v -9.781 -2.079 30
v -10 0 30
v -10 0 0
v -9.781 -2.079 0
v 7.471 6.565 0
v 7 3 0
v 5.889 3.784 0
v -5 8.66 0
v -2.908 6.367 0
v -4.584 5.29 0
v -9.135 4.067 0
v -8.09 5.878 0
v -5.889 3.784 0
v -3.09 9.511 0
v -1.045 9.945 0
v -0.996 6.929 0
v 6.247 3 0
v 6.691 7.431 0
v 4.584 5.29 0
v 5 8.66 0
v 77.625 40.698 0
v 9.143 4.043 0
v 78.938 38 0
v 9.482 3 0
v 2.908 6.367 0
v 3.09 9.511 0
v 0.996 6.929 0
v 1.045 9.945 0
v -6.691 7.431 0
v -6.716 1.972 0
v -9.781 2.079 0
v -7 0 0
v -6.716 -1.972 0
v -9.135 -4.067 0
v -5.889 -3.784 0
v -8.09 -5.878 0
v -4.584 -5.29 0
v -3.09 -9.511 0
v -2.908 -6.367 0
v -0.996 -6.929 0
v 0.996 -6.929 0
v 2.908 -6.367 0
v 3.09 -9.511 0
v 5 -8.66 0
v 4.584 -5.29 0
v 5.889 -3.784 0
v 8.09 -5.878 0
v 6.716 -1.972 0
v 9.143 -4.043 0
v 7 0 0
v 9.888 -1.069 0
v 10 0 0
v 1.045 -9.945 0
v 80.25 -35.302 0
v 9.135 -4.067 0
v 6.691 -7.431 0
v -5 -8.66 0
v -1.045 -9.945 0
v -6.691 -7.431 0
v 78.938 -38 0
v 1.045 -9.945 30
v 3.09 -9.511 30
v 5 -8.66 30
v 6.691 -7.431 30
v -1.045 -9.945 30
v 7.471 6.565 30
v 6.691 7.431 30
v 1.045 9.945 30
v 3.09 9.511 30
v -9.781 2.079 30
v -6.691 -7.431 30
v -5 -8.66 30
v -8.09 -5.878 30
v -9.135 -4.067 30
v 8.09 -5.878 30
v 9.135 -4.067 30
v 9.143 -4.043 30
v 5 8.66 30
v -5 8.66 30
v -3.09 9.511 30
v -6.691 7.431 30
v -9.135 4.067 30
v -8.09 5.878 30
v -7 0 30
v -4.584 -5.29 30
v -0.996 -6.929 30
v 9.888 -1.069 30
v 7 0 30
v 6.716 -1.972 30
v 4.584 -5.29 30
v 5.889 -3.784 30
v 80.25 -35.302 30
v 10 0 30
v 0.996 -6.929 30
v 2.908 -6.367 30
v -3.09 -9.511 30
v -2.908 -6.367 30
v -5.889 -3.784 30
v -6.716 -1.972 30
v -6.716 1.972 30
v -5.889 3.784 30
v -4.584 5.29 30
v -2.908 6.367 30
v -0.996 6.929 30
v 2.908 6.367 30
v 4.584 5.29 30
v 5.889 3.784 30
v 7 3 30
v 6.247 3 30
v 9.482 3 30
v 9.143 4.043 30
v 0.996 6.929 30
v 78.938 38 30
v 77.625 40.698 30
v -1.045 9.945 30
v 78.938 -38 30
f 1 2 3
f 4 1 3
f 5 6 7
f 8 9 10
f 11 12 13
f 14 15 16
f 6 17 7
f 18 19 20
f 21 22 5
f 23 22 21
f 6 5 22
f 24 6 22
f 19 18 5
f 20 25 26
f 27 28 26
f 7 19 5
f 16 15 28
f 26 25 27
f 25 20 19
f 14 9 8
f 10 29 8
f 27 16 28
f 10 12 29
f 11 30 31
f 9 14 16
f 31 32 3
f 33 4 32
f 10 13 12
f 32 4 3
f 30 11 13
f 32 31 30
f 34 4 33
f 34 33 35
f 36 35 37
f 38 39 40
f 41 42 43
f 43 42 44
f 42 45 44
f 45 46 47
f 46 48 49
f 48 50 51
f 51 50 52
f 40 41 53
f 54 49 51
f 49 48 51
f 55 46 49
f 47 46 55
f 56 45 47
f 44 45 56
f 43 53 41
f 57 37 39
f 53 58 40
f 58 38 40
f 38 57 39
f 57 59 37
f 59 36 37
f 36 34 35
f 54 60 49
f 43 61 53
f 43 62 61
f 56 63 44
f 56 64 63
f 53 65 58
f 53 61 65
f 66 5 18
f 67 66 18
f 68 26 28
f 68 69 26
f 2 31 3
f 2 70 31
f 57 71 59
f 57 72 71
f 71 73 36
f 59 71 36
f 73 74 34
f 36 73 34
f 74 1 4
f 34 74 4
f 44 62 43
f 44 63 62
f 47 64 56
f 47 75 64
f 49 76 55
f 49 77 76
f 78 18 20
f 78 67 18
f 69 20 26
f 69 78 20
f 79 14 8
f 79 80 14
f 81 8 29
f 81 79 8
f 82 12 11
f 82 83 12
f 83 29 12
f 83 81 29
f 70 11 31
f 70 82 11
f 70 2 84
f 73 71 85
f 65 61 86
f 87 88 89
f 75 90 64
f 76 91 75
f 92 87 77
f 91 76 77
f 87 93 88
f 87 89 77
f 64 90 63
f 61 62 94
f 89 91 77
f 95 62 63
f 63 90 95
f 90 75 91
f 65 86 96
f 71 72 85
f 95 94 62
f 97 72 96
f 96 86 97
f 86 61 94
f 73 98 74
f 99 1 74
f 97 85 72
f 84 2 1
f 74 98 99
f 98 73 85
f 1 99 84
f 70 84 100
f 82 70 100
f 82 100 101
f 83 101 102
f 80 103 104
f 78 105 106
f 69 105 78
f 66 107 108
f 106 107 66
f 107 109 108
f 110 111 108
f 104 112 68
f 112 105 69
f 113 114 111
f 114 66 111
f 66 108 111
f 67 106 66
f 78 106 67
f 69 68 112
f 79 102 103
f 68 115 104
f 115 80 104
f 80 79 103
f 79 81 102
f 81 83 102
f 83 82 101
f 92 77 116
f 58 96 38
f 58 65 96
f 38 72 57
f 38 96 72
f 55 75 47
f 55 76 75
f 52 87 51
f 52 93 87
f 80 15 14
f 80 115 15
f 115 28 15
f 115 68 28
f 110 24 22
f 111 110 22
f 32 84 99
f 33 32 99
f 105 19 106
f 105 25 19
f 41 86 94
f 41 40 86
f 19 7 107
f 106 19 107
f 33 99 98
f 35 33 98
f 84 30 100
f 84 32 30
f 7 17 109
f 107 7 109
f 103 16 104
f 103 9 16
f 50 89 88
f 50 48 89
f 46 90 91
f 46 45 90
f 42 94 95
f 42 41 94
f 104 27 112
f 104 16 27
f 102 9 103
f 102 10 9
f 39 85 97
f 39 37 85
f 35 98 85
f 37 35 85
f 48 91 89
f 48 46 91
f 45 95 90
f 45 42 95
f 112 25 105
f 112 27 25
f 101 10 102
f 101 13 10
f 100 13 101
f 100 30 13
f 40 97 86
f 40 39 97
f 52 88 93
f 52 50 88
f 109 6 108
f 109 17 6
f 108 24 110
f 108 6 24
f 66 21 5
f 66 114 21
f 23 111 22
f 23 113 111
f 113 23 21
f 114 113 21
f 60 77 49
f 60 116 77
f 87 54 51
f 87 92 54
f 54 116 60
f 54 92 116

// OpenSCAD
open = 70; //78;

length = 80;
thickness = 3;
height = 30;
radius = 10;

// sin alpha = opposite / hyperthenuse
alpha = asin(open/2 / length);

difference() {
    cylinder(height, r=radius);
    cylinder(height, r=radius-thickness);
    cube([length, thickness, height]);    
}
translate([radius-thickness, thickness, 0]) rotate([0, 0, alpha]) cube([length, thickness, height]);
translate([radius-thickness, -thickness, 0]) rotate([0, 0, -alpha]) cube([length, thickness, height]);
